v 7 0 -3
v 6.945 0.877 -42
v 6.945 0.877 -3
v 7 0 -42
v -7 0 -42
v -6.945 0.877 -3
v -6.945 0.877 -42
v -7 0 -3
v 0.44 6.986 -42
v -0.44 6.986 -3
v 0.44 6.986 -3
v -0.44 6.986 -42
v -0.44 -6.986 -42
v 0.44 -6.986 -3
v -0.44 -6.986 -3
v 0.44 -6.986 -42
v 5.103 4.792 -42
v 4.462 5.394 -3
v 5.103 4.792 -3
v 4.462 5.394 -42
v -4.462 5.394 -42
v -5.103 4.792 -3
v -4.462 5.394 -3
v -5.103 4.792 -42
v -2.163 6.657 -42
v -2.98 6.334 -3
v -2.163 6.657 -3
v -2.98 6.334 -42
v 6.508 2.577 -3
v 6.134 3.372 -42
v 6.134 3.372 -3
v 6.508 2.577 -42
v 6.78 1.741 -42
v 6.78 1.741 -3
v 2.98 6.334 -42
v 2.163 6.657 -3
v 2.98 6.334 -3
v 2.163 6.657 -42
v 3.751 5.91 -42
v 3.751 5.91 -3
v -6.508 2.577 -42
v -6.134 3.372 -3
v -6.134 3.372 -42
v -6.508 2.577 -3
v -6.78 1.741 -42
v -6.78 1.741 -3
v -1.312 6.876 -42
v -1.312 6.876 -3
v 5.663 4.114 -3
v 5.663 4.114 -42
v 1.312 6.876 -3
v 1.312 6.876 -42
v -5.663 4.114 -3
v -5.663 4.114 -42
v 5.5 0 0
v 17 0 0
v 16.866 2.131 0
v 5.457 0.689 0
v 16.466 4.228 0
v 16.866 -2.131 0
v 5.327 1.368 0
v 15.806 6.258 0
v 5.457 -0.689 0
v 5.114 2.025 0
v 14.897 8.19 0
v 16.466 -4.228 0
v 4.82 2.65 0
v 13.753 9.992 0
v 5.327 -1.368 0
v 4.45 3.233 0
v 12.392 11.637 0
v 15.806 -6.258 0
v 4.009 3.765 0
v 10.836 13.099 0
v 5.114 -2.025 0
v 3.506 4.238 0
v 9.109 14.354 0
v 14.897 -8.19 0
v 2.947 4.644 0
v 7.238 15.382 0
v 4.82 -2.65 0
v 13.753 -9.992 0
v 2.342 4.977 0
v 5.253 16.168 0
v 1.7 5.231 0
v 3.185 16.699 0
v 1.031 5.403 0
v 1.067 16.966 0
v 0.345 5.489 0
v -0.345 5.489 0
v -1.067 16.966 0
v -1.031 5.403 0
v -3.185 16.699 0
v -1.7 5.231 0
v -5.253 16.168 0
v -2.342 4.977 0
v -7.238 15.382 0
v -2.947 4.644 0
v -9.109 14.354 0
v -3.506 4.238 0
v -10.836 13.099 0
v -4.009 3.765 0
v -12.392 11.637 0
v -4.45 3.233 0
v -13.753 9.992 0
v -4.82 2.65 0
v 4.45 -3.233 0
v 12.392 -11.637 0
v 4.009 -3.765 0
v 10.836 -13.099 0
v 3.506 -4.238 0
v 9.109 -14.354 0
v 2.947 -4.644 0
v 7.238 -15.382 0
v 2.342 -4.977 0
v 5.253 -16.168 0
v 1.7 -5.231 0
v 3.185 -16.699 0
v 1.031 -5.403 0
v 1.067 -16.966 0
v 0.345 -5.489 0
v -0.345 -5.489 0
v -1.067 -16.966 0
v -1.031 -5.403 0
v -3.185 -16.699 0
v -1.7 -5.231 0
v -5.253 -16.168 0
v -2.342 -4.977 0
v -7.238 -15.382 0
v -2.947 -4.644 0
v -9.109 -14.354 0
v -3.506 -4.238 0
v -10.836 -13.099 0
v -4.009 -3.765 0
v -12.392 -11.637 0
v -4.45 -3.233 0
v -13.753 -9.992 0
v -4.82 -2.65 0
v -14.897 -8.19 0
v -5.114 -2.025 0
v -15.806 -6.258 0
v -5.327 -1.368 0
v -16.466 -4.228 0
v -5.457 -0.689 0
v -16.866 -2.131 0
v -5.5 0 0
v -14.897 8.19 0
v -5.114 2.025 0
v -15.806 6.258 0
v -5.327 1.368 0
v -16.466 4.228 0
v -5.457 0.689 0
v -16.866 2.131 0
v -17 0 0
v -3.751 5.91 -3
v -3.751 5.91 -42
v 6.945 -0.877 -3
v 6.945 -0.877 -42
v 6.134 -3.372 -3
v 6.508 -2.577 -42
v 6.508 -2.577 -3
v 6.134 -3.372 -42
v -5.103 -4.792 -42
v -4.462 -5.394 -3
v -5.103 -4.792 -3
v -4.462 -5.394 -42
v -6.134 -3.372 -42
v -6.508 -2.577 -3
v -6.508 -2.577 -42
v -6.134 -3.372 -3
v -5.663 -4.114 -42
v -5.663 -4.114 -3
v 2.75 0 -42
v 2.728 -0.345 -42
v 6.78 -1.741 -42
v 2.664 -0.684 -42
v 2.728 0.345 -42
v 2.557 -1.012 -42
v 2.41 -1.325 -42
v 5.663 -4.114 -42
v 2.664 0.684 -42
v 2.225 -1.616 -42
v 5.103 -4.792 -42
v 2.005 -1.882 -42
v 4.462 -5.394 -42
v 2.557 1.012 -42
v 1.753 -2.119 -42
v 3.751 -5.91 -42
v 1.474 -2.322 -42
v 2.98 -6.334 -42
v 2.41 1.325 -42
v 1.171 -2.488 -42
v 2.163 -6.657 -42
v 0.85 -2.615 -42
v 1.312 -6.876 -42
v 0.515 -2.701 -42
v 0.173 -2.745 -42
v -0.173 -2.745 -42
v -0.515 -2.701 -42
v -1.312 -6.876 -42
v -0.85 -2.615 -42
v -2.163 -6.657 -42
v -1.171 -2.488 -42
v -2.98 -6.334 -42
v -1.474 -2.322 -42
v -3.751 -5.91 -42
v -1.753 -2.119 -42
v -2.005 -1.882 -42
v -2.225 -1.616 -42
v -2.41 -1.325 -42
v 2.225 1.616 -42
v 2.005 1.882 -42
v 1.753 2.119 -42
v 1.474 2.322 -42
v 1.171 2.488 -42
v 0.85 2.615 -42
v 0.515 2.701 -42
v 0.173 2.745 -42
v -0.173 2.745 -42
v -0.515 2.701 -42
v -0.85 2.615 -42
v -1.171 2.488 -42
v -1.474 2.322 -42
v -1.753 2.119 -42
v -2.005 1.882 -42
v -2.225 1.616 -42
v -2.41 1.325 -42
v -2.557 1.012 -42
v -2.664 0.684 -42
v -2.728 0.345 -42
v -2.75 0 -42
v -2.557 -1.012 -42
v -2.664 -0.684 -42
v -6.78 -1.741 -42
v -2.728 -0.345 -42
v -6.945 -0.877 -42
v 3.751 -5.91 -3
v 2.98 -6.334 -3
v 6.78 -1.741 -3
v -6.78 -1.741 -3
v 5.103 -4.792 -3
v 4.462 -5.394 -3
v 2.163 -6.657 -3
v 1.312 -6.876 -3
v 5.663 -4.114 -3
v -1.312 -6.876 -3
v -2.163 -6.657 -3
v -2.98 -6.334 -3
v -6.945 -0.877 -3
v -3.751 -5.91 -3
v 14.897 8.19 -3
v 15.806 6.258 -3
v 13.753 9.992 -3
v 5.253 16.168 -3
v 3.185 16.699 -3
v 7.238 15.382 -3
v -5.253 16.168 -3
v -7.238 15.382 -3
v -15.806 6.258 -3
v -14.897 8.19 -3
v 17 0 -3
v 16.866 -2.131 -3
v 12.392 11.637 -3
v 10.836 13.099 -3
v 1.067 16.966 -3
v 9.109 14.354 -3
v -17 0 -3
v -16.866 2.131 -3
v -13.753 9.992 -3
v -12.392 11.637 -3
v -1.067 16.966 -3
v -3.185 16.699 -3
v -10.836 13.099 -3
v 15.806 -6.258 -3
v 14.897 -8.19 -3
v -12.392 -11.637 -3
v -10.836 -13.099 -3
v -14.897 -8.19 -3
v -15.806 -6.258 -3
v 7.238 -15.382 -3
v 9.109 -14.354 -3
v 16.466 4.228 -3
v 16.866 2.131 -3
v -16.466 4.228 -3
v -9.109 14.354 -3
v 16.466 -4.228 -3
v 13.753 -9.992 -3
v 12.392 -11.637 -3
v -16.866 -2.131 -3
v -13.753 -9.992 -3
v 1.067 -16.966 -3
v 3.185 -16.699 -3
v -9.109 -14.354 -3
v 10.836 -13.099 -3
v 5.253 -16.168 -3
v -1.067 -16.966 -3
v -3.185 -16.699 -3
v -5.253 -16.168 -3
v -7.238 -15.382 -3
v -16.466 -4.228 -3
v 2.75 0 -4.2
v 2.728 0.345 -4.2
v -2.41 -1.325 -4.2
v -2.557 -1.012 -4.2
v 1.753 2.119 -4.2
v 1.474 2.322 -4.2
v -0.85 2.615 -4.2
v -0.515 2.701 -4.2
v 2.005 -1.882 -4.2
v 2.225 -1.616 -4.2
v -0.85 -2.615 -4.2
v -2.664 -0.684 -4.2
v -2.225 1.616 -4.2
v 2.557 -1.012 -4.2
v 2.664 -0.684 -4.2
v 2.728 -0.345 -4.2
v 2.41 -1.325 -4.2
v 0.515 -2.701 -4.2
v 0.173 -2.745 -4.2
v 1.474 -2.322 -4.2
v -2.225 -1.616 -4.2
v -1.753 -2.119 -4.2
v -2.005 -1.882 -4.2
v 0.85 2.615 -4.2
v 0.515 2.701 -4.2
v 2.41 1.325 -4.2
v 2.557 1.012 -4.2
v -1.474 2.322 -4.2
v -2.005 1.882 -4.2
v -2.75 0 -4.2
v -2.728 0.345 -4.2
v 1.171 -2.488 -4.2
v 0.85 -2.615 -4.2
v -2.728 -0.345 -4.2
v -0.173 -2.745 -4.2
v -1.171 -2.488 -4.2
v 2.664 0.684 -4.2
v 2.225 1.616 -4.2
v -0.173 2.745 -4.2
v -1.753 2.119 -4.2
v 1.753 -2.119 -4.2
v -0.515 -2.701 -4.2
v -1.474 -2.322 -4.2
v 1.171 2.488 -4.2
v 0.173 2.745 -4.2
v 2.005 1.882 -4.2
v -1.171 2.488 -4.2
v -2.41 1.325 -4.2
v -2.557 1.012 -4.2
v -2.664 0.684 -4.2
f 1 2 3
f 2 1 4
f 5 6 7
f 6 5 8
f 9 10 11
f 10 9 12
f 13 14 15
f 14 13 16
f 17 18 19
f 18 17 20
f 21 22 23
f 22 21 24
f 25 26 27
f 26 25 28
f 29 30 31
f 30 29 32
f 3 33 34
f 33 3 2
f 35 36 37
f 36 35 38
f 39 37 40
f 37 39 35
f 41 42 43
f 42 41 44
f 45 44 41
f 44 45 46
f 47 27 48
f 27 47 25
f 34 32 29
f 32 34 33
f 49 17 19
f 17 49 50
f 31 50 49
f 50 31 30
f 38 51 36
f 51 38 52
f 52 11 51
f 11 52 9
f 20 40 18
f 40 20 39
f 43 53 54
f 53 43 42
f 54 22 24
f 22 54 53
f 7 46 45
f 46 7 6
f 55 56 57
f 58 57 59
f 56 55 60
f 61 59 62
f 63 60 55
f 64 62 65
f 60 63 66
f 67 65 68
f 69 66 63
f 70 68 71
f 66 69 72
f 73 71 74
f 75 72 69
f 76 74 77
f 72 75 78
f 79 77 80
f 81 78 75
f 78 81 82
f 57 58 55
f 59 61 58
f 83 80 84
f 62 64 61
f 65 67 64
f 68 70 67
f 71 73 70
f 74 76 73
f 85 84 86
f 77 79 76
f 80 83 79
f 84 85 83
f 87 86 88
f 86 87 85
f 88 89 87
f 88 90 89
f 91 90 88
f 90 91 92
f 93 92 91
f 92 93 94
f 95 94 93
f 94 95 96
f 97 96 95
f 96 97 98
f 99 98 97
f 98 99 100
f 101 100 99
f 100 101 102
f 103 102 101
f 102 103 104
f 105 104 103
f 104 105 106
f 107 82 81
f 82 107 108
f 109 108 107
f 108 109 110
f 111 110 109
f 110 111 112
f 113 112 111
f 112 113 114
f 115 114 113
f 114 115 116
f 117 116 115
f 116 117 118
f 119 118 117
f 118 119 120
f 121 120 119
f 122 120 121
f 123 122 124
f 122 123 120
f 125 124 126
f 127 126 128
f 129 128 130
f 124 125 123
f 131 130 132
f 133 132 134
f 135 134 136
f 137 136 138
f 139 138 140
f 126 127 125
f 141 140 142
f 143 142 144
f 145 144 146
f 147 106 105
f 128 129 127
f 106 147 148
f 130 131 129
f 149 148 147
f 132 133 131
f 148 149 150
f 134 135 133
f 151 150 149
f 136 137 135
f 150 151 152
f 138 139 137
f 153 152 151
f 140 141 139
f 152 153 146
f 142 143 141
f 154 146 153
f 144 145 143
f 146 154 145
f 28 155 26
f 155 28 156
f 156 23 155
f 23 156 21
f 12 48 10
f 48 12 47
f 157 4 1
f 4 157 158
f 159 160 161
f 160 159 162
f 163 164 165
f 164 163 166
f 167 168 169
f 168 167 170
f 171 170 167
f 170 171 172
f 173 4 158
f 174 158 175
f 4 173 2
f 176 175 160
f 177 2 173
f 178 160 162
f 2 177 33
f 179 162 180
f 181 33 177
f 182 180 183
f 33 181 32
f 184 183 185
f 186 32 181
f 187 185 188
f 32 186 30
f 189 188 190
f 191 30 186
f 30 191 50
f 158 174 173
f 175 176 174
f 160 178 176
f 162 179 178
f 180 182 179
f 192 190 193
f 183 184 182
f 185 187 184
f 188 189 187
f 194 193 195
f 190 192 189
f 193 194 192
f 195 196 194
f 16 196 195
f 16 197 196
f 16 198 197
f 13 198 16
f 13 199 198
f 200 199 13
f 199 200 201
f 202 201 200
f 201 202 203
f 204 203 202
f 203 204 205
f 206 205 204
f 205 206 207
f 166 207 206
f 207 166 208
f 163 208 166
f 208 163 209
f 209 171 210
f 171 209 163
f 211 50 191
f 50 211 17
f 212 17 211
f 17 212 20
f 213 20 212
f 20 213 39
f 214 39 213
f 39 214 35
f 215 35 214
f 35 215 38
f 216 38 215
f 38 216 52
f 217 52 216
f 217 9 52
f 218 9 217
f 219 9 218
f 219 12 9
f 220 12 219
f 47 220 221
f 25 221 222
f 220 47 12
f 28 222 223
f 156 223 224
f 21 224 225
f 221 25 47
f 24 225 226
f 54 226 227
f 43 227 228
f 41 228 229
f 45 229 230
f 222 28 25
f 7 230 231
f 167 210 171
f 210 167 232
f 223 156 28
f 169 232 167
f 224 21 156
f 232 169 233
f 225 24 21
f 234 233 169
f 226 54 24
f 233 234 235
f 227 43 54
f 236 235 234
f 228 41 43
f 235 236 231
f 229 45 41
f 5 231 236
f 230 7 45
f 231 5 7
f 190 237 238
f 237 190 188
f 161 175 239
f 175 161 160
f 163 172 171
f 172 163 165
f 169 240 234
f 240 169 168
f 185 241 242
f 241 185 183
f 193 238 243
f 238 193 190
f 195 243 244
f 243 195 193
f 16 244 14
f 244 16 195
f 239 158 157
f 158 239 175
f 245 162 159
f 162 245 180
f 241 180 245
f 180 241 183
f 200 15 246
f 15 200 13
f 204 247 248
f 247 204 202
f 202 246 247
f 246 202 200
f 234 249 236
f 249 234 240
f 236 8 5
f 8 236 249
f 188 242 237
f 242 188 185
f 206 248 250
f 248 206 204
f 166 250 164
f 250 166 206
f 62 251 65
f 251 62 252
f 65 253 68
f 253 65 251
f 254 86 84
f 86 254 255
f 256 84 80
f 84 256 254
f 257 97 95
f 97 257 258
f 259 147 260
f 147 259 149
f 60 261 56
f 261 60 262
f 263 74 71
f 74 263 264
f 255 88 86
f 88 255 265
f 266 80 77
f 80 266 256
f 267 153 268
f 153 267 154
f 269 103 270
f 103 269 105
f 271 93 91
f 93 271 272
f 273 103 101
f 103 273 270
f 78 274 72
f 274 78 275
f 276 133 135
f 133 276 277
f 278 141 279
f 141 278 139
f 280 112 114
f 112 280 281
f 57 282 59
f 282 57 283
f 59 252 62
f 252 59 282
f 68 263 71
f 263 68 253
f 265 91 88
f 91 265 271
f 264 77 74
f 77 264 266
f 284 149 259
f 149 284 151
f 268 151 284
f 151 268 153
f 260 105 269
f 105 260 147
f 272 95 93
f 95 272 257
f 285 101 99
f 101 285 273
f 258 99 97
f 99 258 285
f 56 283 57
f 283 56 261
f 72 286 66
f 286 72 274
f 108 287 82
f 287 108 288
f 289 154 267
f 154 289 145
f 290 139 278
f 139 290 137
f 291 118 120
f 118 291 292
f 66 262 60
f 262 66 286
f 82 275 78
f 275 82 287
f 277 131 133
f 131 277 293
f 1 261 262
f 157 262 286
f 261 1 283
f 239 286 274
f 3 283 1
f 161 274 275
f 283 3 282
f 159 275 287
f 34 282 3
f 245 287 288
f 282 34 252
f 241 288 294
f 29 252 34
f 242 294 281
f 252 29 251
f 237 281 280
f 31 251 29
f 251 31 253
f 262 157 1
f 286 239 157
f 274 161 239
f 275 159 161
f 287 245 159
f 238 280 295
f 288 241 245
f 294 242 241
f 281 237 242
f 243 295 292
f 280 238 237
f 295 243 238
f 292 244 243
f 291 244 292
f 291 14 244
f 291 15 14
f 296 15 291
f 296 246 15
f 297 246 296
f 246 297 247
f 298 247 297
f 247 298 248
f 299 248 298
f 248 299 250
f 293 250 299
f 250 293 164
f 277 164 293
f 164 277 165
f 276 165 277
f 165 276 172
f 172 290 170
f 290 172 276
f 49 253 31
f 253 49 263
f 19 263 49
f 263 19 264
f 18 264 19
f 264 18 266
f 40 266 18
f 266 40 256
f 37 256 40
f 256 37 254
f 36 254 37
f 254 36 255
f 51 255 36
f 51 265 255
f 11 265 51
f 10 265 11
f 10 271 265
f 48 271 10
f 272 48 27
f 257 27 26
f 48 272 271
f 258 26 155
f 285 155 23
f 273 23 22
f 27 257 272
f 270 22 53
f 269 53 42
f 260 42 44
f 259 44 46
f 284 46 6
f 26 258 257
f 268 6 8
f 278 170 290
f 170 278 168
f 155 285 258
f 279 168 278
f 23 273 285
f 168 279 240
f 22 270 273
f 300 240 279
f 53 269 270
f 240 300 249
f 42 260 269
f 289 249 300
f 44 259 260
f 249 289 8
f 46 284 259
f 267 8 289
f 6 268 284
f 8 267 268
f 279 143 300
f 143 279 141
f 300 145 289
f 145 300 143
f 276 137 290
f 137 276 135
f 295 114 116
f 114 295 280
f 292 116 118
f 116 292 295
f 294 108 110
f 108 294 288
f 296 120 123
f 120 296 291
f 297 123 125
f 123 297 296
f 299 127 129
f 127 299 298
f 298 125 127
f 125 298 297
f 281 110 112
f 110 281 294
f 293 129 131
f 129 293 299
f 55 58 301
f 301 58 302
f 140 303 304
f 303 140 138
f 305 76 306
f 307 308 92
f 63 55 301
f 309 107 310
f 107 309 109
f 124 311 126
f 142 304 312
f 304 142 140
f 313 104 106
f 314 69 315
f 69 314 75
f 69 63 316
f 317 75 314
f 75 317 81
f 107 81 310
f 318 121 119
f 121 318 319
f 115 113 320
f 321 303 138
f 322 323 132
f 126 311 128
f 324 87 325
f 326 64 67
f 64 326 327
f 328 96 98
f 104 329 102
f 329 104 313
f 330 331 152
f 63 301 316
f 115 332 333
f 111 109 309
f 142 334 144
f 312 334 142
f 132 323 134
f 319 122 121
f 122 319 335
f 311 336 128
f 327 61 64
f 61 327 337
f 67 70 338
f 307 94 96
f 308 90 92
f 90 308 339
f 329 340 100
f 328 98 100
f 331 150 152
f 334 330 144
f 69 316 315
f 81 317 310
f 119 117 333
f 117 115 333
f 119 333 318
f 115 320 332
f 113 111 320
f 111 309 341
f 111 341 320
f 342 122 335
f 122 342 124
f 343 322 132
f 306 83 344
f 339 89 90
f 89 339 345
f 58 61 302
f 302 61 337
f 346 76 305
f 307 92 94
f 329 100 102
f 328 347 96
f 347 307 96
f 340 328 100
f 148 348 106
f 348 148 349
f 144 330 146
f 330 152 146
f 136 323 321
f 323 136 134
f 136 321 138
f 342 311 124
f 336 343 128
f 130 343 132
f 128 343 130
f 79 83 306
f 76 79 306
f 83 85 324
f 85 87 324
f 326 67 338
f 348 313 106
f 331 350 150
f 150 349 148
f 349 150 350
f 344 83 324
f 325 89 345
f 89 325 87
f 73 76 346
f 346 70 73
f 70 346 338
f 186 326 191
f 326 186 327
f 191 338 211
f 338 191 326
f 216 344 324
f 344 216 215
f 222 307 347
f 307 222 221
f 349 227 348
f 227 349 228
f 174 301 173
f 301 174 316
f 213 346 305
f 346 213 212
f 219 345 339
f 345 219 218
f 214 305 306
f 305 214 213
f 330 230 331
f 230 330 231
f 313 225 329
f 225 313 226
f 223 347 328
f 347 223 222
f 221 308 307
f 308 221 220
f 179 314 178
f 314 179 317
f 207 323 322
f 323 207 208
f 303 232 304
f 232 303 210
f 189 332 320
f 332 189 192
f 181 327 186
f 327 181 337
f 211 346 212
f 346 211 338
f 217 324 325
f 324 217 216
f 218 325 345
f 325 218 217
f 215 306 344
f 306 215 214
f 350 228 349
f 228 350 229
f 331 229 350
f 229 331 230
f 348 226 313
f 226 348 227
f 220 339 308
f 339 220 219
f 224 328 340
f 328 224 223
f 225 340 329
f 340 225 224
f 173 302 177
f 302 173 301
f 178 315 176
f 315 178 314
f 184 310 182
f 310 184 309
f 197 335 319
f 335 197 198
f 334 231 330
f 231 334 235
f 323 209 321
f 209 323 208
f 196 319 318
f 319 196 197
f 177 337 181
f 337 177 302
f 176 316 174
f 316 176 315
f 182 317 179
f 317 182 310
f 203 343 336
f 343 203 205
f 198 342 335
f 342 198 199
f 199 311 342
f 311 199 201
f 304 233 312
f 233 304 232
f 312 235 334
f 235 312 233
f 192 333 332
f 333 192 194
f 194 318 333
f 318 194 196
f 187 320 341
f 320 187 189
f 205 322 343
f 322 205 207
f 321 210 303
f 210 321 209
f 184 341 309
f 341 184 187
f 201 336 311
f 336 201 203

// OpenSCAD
$fn = 50;


difference() {
	union() {
		translate(v = [0, 0, -42.0000000000]) {
			cylinder(h = 42, r = 7.0000000000);
		}
		translate(v = [0, 0, -3.0000000000]) {
			cylinder(h = 3, r = 17.0000000000);
		}
	}
	union() {
		translate(v = [0, 0, 0]) {
			rotate(a = [0, 0, 0]) {
				difference() {
					union() {
						#translate(v = [0, 0, -42.0000000000]) {
							cylinder(h = 42, r = 2.2500000000);
						}
						#translate(v = [0, 0, -4.2000000000]) {
							cylinder(h = 4.2000000000, r = 7.0000000000, r1 = 2.7500000000, r2 = 5.5000000000);
						}
						#translate(v = [0, 0, -42.0000000000]) {
							cylinder(h = 42, r = 2.7500000000);
						}
						#translate(v = [0, 0, -42.0000000000]) {
							cylinder(h = 42, r = 2.2500000000);
						}
					}
					union();
				}
			}
		}
	}
}
